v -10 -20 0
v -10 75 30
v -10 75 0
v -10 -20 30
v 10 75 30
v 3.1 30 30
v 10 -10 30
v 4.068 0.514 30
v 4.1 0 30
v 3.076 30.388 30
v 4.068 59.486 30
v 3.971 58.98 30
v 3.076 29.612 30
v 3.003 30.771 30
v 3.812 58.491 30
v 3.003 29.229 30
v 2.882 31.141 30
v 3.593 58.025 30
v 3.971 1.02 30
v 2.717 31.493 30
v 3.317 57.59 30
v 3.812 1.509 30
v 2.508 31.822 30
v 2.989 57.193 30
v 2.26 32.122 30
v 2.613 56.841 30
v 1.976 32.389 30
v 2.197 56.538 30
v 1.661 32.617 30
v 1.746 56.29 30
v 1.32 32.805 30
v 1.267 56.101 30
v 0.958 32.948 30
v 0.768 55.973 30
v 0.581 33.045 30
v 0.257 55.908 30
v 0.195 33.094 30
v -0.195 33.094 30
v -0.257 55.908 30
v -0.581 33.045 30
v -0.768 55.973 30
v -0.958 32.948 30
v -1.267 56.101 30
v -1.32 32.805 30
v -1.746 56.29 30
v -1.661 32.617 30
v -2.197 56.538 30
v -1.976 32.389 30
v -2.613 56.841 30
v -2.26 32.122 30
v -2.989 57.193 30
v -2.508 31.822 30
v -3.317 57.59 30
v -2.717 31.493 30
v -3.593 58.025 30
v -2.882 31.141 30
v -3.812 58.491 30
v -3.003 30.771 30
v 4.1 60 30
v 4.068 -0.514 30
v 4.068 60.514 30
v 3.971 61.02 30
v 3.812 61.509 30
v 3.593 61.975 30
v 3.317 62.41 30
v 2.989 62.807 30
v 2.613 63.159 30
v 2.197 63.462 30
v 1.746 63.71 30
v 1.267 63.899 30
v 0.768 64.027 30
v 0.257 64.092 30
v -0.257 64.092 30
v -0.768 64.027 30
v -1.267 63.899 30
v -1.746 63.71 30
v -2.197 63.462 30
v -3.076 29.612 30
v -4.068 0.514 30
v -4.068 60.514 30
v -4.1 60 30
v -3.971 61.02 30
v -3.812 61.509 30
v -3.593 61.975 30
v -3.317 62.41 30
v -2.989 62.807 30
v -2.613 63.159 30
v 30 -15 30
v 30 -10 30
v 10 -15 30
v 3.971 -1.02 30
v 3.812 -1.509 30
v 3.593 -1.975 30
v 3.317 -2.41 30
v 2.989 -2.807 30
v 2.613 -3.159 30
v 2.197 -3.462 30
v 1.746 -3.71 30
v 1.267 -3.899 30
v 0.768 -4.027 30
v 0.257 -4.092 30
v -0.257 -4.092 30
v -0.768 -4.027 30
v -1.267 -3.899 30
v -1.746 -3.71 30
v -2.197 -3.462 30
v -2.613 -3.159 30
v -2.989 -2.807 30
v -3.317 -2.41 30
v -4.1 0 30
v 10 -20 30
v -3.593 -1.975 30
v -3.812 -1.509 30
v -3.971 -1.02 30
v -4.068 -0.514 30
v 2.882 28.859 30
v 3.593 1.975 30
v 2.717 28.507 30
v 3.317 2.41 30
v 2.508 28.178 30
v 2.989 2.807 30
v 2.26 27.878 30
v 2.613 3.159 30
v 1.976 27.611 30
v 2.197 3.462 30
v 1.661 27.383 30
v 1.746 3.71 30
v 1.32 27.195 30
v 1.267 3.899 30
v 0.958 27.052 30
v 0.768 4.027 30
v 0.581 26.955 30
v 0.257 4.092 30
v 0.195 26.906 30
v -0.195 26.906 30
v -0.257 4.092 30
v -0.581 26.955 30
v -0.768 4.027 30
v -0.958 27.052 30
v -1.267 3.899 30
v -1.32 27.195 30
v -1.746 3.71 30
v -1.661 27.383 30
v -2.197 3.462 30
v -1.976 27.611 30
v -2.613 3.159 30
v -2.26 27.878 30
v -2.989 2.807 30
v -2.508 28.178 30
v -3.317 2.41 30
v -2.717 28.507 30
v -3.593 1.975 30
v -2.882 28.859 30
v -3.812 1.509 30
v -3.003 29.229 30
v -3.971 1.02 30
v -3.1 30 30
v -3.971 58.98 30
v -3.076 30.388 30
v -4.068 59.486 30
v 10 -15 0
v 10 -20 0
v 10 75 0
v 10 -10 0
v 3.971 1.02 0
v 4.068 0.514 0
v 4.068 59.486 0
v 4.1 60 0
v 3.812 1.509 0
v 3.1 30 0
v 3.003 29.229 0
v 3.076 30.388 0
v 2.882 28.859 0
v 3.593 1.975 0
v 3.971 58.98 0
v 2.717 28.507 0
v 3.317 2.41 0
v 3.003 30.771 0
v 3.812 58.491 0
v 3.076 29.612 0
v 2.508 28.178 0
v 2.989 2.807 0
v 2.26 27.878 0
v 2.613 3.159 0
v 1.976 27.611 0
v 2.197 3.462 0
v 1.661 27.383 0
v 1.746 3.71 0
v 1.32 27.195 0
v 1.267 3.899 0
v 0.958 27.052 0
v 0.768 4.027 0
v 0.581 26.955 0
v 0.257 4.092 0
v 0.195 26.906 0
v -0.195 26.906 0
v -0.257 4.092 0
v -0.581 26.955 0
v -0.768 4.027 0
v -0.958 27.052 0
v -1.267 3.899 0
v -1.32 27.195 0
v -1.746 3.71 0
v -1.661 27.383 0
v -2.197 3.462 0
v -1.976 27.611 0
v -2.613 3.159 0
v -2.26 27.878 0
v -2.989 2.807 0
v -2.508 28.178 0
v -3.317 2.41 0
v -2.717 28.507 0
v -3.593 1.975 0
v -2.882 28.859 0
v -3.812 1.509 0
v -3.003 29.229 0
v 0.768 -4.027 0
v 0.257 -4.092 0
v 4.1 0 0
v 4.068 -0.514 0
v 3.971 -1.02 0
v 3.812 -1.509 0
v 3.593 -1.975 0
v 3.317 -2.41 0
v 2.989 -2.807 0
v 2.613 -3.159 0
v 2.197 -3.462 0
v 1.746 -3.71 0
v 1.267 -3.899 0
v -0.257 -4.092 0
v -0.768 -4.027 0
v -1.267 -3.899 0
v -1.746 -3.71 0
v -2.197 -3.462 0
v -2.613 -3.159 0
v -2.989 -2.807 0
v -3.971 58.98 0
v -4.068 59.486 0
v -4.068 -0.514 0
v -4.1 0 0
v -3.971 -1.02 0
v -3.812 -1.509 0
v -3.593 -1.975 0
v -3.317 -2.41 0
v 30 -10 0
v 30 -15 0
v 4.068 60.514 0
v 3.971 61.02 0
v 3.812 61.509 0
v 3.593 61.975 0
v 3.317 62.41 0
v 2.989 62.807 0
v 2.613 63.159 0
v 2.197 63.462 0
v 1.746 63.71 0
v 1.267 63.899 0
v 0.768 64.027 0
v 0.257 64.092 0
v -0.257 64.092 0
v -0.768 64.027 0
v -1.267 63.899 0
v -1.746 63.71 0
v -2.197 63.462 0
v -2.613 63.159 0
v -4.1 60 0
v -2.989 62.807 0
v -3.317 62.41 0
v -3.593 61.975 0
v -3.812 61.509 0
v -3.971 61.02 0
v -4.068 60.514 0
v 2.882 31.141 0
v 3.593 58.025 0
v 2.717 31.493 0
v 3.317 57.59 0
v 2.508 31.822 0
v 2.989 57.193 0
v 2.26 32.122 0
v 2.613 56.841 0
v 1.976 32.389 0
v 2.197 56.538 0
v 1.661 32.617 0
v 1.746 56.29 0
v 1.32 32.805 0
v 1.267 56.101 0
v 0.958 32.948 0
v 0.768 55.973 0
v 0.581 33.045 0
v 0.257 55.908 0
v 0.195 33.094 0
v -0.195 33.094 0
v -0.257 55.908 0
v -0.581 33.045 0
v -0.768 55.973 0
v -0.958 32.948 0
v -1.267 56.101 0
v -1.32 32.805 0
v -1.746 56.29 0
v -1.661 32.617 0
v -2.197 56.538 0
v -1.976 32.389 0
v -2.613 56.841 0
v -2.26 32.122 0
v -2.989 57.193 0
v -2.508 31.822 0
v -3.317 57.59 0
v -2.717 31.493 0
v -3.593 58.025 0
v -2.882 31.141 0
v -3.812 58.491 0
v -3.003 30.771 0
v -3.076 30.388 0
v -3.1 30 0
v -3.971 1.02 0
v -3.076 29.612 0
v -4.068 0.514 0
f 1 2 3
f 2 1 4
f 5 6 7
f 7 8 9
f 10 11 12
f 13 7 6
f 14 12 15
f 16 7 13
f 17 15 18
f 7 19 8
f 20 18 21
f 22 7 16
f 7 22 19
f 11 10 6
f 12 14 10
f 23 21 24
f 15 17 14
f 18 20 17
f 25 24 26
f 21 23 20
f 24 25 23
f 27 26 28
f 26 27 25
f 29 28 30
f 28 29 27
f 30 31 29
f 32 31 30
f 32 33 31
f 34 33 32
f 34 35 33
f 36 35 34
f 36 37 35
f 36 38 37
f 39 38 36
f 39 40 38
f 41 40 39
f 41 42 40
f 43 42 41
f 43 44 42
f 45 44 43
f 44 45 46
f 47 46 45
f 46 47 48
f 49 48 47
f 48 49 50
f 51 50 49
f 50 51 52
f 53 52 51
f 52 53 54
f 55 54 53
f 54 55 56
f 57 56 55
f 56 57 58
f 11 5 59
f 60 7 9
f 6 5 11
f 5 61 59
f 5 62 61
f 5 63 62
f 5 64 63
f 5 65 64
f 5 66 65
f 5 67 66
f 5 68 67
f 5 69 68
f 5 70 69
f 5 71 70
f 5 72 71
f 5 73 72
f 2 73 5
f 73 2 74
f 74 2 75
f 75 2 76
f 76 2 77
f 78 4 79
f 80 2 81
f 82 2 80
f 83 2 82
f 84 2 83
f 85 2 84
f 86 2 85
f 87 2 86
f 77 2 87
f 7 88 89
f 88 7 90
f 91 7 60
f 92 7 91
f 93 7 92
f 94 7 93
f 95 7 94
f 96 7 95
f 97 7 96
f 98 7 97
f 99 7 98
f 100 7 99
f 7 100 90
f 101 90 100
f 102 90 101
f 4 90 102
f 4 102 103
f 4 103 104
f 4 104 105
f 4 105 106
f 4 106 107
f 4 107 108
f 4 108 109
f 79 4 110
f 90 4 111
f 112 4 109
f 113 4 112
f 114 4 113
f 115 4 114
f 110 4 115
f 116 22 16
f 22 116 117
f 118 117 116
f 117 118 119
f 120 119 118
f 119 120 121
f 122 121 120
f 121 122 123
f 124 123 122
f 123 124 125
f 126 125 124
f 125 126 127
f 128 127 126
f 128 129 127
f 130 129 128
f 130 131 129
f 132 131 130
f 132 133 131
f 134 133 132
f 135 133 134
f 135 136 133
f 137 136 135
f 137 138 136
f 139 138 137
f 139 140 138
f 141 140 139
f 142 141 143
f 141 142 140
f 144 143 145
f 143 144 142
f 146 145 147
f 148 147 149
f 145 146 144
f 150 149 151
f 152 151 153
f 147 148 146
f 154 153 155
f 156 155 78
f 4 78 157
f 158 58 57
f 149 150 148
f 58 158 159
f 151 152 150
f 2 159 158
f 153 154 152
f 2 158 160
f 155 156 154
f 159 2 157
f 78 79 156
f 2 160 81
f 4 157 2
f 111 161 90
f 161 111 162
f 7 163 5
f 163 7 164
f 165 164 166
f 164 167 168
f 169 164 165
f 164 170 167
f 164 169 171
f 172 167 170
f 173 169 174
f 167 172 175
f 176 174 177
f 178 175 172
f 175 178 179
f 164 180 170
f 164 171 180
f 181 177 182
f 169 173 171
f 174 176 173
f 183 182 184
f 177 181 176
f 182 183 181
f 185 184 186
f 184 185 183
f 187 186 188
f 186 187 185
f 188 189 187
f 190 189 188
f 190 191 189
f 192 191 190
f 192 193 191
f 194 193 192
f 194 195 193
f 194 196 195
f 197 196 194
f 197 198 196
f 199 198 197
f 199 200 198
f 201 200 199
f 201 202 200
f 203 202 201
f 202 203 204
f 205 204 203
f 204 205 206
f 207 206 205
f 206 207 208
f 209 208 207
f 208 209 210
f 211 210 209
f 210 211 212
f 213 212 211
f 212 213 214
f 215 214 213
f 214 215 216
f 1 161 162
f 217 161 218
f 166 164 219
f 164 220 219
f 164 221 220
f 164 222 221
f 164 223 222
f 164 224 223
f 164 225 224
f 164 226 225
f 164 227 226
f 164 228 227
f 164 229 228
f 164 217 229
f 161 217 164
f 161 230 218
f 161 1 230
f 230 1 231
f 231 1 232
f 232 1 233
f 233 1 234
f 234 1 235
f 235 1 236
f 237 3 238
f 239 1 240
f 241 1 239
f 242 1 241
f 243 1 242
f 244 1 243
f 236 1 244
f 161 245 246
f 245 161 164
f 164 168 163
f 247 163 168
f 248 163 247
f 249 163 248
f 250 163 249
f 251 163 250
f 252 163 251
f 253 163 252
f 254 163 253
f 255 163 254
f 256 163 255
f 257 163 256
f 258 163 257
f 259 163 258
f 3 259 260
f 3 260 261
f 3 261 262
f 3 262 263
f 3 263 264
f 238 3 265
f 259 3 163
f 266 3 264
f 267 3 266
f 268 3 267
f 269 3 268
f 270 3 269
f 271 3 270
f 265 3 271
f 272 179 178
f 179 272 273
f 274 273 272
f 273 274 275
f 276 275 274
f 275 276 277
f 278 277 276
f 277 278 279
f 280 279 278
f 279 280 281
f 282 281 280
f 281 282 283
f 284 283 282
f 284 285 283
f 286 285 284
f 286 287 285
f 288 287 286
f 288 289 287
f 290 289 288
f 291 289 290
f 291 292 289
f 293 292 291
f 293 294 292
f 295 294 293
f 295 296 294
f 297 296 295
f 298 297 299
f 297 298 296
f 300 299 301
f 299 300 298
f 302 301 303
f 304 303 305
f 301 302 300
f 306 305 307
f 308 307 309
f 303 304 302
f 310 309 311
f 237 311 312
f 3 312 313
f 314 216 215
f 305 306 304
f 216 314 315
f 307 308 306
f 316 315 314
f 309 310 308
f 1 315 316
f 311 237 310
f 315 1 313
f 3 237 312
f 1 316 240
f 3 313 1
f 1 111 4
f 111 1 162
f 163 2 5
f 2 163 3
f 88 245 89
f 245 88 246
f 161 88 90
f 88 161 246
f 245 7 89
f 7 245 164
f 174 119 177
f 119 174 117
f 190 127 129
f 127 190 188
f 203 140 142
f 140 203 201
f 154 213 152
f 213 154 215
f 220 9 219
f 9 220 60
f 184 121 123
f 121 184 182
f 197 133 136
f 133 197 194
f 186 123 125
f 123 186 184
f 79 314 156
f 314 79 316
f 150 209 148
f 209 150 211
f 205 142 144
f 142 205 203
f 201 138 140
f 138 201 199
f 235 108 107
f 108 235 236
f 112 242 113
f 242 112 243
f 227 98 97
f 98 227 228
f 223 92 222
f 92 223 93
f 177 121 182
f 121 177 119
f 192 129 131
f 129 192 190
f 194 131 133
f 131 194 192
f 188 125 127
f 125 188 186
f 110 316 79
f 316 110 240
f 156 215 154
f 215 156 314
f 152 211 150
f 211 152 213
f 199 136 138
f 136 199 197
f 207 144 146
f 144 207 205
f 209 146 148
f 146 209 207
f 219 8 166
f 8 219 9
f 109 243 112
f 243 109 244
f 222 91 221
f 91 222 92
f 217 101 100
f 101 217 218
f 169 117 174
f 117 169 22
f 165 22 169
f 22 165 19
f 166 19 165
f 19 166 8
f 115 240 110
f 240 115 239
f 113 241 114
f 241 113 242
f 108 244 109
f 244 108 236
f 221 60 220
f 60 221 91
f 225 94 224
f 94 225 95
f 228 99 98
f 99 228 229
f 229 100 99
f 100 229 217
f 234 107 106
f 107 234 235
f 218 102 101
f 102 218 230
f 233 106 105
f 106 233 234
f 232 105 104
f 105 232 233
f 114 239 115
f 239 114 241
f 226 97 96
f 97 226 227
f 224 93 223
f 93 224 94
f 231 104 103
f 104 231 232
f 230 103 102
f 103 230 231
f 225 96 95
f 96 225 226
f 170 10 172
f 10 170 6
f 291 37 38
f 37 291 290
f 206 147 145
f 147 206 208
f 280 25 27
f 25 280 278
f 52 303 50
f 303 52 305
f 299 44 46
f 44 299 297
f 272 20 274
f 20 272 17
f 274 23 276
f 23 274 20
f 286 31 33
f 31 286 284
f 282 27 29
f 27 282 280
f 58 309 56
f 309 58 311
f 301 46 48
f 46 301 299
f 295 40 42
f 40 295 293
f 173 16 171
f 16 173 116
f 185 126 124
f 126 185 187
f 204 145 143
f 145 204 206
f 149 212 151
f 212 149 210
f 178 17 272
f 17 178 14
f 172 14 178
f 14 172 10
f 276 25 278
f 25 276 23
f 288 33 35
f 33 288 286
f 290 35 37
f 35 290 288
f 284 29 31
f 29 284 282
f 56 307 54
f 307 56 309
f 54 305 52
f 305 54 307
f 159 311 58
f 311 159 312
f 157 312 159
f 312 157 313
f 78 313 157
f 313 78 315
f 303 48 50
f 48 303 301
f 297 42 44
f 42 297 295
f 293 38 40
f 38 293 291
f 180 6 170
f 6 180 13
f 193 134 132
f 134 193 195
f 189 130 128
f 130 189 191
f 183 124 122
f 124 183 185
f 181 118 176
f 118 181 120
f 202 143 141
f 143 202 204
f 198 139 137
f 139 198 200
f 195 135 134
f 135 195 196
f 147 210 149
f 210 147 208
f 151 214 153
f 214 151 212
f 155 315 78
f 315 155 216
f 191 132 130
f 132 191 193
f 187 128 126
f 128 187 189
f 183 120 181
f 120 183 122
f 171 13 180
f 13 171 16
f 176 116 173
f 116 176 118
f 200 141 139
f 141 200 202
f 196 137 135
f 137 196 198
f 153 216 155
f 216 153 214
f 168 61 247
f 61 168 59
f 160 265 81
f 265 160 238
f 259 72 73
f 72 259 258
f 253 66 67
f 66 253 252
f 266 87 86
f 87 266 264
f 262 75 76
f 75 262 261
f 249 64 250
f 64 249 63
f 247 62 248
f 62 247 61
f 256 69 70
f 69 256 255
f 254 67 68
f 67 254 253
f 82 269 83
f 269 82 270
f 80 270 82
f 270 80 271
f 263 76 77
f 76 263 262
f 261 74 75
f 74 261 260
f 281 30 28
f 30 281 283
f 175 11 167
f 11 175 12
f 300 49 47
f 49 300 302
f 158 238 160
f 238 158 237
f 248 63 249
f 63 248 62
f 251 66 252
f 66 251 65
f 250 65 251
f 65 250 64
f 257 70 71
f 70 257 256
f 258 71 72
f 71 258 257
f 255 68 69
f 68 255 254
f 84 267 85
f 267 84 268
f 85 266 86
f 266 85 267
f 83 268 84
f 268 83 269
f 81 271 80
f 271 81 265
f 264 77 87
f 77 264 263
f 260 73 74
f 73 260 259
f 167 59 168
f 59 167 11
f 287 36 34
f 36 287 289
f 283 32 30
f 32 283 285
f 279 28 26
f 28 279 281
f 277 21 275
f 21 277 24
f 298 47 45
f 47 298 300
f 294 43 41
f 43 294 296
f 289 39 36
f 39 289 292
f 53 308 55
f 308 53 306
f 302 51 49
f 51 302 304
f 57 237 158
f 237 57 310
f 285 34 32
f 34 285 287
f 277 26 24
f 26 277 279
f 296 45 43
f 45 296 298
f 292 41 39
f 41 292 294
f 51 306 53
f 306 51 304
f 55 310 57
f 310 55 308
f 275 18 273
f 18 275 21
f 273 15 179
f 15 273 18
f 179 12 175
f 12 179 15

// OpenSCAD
$fn=50;

difference (){
union(){
 /*  
translate([-10,-15,0]) cube([20,90,30]);       //Cariage stand
translate([10,-15,0]) cube([37.5,5,30]);
translate([47.5,-12.5,0]) cylinder (d=5, h=30);
*/

translate([-10,-20,0]) cube([20,95,30]);       //Cariage stand alternative
translate([10,-15,0]) cube([20,5,30]);

}

color("Red") union(){
cylinder (d=8.2, h=40);                             //Lead rod
translate([0,30,0]) cylinder (d=6.2, h=40);         //Lead screw
translate([0,60,0]) cylinder (d=8.2, h=40);         //Lead rod
}
}
